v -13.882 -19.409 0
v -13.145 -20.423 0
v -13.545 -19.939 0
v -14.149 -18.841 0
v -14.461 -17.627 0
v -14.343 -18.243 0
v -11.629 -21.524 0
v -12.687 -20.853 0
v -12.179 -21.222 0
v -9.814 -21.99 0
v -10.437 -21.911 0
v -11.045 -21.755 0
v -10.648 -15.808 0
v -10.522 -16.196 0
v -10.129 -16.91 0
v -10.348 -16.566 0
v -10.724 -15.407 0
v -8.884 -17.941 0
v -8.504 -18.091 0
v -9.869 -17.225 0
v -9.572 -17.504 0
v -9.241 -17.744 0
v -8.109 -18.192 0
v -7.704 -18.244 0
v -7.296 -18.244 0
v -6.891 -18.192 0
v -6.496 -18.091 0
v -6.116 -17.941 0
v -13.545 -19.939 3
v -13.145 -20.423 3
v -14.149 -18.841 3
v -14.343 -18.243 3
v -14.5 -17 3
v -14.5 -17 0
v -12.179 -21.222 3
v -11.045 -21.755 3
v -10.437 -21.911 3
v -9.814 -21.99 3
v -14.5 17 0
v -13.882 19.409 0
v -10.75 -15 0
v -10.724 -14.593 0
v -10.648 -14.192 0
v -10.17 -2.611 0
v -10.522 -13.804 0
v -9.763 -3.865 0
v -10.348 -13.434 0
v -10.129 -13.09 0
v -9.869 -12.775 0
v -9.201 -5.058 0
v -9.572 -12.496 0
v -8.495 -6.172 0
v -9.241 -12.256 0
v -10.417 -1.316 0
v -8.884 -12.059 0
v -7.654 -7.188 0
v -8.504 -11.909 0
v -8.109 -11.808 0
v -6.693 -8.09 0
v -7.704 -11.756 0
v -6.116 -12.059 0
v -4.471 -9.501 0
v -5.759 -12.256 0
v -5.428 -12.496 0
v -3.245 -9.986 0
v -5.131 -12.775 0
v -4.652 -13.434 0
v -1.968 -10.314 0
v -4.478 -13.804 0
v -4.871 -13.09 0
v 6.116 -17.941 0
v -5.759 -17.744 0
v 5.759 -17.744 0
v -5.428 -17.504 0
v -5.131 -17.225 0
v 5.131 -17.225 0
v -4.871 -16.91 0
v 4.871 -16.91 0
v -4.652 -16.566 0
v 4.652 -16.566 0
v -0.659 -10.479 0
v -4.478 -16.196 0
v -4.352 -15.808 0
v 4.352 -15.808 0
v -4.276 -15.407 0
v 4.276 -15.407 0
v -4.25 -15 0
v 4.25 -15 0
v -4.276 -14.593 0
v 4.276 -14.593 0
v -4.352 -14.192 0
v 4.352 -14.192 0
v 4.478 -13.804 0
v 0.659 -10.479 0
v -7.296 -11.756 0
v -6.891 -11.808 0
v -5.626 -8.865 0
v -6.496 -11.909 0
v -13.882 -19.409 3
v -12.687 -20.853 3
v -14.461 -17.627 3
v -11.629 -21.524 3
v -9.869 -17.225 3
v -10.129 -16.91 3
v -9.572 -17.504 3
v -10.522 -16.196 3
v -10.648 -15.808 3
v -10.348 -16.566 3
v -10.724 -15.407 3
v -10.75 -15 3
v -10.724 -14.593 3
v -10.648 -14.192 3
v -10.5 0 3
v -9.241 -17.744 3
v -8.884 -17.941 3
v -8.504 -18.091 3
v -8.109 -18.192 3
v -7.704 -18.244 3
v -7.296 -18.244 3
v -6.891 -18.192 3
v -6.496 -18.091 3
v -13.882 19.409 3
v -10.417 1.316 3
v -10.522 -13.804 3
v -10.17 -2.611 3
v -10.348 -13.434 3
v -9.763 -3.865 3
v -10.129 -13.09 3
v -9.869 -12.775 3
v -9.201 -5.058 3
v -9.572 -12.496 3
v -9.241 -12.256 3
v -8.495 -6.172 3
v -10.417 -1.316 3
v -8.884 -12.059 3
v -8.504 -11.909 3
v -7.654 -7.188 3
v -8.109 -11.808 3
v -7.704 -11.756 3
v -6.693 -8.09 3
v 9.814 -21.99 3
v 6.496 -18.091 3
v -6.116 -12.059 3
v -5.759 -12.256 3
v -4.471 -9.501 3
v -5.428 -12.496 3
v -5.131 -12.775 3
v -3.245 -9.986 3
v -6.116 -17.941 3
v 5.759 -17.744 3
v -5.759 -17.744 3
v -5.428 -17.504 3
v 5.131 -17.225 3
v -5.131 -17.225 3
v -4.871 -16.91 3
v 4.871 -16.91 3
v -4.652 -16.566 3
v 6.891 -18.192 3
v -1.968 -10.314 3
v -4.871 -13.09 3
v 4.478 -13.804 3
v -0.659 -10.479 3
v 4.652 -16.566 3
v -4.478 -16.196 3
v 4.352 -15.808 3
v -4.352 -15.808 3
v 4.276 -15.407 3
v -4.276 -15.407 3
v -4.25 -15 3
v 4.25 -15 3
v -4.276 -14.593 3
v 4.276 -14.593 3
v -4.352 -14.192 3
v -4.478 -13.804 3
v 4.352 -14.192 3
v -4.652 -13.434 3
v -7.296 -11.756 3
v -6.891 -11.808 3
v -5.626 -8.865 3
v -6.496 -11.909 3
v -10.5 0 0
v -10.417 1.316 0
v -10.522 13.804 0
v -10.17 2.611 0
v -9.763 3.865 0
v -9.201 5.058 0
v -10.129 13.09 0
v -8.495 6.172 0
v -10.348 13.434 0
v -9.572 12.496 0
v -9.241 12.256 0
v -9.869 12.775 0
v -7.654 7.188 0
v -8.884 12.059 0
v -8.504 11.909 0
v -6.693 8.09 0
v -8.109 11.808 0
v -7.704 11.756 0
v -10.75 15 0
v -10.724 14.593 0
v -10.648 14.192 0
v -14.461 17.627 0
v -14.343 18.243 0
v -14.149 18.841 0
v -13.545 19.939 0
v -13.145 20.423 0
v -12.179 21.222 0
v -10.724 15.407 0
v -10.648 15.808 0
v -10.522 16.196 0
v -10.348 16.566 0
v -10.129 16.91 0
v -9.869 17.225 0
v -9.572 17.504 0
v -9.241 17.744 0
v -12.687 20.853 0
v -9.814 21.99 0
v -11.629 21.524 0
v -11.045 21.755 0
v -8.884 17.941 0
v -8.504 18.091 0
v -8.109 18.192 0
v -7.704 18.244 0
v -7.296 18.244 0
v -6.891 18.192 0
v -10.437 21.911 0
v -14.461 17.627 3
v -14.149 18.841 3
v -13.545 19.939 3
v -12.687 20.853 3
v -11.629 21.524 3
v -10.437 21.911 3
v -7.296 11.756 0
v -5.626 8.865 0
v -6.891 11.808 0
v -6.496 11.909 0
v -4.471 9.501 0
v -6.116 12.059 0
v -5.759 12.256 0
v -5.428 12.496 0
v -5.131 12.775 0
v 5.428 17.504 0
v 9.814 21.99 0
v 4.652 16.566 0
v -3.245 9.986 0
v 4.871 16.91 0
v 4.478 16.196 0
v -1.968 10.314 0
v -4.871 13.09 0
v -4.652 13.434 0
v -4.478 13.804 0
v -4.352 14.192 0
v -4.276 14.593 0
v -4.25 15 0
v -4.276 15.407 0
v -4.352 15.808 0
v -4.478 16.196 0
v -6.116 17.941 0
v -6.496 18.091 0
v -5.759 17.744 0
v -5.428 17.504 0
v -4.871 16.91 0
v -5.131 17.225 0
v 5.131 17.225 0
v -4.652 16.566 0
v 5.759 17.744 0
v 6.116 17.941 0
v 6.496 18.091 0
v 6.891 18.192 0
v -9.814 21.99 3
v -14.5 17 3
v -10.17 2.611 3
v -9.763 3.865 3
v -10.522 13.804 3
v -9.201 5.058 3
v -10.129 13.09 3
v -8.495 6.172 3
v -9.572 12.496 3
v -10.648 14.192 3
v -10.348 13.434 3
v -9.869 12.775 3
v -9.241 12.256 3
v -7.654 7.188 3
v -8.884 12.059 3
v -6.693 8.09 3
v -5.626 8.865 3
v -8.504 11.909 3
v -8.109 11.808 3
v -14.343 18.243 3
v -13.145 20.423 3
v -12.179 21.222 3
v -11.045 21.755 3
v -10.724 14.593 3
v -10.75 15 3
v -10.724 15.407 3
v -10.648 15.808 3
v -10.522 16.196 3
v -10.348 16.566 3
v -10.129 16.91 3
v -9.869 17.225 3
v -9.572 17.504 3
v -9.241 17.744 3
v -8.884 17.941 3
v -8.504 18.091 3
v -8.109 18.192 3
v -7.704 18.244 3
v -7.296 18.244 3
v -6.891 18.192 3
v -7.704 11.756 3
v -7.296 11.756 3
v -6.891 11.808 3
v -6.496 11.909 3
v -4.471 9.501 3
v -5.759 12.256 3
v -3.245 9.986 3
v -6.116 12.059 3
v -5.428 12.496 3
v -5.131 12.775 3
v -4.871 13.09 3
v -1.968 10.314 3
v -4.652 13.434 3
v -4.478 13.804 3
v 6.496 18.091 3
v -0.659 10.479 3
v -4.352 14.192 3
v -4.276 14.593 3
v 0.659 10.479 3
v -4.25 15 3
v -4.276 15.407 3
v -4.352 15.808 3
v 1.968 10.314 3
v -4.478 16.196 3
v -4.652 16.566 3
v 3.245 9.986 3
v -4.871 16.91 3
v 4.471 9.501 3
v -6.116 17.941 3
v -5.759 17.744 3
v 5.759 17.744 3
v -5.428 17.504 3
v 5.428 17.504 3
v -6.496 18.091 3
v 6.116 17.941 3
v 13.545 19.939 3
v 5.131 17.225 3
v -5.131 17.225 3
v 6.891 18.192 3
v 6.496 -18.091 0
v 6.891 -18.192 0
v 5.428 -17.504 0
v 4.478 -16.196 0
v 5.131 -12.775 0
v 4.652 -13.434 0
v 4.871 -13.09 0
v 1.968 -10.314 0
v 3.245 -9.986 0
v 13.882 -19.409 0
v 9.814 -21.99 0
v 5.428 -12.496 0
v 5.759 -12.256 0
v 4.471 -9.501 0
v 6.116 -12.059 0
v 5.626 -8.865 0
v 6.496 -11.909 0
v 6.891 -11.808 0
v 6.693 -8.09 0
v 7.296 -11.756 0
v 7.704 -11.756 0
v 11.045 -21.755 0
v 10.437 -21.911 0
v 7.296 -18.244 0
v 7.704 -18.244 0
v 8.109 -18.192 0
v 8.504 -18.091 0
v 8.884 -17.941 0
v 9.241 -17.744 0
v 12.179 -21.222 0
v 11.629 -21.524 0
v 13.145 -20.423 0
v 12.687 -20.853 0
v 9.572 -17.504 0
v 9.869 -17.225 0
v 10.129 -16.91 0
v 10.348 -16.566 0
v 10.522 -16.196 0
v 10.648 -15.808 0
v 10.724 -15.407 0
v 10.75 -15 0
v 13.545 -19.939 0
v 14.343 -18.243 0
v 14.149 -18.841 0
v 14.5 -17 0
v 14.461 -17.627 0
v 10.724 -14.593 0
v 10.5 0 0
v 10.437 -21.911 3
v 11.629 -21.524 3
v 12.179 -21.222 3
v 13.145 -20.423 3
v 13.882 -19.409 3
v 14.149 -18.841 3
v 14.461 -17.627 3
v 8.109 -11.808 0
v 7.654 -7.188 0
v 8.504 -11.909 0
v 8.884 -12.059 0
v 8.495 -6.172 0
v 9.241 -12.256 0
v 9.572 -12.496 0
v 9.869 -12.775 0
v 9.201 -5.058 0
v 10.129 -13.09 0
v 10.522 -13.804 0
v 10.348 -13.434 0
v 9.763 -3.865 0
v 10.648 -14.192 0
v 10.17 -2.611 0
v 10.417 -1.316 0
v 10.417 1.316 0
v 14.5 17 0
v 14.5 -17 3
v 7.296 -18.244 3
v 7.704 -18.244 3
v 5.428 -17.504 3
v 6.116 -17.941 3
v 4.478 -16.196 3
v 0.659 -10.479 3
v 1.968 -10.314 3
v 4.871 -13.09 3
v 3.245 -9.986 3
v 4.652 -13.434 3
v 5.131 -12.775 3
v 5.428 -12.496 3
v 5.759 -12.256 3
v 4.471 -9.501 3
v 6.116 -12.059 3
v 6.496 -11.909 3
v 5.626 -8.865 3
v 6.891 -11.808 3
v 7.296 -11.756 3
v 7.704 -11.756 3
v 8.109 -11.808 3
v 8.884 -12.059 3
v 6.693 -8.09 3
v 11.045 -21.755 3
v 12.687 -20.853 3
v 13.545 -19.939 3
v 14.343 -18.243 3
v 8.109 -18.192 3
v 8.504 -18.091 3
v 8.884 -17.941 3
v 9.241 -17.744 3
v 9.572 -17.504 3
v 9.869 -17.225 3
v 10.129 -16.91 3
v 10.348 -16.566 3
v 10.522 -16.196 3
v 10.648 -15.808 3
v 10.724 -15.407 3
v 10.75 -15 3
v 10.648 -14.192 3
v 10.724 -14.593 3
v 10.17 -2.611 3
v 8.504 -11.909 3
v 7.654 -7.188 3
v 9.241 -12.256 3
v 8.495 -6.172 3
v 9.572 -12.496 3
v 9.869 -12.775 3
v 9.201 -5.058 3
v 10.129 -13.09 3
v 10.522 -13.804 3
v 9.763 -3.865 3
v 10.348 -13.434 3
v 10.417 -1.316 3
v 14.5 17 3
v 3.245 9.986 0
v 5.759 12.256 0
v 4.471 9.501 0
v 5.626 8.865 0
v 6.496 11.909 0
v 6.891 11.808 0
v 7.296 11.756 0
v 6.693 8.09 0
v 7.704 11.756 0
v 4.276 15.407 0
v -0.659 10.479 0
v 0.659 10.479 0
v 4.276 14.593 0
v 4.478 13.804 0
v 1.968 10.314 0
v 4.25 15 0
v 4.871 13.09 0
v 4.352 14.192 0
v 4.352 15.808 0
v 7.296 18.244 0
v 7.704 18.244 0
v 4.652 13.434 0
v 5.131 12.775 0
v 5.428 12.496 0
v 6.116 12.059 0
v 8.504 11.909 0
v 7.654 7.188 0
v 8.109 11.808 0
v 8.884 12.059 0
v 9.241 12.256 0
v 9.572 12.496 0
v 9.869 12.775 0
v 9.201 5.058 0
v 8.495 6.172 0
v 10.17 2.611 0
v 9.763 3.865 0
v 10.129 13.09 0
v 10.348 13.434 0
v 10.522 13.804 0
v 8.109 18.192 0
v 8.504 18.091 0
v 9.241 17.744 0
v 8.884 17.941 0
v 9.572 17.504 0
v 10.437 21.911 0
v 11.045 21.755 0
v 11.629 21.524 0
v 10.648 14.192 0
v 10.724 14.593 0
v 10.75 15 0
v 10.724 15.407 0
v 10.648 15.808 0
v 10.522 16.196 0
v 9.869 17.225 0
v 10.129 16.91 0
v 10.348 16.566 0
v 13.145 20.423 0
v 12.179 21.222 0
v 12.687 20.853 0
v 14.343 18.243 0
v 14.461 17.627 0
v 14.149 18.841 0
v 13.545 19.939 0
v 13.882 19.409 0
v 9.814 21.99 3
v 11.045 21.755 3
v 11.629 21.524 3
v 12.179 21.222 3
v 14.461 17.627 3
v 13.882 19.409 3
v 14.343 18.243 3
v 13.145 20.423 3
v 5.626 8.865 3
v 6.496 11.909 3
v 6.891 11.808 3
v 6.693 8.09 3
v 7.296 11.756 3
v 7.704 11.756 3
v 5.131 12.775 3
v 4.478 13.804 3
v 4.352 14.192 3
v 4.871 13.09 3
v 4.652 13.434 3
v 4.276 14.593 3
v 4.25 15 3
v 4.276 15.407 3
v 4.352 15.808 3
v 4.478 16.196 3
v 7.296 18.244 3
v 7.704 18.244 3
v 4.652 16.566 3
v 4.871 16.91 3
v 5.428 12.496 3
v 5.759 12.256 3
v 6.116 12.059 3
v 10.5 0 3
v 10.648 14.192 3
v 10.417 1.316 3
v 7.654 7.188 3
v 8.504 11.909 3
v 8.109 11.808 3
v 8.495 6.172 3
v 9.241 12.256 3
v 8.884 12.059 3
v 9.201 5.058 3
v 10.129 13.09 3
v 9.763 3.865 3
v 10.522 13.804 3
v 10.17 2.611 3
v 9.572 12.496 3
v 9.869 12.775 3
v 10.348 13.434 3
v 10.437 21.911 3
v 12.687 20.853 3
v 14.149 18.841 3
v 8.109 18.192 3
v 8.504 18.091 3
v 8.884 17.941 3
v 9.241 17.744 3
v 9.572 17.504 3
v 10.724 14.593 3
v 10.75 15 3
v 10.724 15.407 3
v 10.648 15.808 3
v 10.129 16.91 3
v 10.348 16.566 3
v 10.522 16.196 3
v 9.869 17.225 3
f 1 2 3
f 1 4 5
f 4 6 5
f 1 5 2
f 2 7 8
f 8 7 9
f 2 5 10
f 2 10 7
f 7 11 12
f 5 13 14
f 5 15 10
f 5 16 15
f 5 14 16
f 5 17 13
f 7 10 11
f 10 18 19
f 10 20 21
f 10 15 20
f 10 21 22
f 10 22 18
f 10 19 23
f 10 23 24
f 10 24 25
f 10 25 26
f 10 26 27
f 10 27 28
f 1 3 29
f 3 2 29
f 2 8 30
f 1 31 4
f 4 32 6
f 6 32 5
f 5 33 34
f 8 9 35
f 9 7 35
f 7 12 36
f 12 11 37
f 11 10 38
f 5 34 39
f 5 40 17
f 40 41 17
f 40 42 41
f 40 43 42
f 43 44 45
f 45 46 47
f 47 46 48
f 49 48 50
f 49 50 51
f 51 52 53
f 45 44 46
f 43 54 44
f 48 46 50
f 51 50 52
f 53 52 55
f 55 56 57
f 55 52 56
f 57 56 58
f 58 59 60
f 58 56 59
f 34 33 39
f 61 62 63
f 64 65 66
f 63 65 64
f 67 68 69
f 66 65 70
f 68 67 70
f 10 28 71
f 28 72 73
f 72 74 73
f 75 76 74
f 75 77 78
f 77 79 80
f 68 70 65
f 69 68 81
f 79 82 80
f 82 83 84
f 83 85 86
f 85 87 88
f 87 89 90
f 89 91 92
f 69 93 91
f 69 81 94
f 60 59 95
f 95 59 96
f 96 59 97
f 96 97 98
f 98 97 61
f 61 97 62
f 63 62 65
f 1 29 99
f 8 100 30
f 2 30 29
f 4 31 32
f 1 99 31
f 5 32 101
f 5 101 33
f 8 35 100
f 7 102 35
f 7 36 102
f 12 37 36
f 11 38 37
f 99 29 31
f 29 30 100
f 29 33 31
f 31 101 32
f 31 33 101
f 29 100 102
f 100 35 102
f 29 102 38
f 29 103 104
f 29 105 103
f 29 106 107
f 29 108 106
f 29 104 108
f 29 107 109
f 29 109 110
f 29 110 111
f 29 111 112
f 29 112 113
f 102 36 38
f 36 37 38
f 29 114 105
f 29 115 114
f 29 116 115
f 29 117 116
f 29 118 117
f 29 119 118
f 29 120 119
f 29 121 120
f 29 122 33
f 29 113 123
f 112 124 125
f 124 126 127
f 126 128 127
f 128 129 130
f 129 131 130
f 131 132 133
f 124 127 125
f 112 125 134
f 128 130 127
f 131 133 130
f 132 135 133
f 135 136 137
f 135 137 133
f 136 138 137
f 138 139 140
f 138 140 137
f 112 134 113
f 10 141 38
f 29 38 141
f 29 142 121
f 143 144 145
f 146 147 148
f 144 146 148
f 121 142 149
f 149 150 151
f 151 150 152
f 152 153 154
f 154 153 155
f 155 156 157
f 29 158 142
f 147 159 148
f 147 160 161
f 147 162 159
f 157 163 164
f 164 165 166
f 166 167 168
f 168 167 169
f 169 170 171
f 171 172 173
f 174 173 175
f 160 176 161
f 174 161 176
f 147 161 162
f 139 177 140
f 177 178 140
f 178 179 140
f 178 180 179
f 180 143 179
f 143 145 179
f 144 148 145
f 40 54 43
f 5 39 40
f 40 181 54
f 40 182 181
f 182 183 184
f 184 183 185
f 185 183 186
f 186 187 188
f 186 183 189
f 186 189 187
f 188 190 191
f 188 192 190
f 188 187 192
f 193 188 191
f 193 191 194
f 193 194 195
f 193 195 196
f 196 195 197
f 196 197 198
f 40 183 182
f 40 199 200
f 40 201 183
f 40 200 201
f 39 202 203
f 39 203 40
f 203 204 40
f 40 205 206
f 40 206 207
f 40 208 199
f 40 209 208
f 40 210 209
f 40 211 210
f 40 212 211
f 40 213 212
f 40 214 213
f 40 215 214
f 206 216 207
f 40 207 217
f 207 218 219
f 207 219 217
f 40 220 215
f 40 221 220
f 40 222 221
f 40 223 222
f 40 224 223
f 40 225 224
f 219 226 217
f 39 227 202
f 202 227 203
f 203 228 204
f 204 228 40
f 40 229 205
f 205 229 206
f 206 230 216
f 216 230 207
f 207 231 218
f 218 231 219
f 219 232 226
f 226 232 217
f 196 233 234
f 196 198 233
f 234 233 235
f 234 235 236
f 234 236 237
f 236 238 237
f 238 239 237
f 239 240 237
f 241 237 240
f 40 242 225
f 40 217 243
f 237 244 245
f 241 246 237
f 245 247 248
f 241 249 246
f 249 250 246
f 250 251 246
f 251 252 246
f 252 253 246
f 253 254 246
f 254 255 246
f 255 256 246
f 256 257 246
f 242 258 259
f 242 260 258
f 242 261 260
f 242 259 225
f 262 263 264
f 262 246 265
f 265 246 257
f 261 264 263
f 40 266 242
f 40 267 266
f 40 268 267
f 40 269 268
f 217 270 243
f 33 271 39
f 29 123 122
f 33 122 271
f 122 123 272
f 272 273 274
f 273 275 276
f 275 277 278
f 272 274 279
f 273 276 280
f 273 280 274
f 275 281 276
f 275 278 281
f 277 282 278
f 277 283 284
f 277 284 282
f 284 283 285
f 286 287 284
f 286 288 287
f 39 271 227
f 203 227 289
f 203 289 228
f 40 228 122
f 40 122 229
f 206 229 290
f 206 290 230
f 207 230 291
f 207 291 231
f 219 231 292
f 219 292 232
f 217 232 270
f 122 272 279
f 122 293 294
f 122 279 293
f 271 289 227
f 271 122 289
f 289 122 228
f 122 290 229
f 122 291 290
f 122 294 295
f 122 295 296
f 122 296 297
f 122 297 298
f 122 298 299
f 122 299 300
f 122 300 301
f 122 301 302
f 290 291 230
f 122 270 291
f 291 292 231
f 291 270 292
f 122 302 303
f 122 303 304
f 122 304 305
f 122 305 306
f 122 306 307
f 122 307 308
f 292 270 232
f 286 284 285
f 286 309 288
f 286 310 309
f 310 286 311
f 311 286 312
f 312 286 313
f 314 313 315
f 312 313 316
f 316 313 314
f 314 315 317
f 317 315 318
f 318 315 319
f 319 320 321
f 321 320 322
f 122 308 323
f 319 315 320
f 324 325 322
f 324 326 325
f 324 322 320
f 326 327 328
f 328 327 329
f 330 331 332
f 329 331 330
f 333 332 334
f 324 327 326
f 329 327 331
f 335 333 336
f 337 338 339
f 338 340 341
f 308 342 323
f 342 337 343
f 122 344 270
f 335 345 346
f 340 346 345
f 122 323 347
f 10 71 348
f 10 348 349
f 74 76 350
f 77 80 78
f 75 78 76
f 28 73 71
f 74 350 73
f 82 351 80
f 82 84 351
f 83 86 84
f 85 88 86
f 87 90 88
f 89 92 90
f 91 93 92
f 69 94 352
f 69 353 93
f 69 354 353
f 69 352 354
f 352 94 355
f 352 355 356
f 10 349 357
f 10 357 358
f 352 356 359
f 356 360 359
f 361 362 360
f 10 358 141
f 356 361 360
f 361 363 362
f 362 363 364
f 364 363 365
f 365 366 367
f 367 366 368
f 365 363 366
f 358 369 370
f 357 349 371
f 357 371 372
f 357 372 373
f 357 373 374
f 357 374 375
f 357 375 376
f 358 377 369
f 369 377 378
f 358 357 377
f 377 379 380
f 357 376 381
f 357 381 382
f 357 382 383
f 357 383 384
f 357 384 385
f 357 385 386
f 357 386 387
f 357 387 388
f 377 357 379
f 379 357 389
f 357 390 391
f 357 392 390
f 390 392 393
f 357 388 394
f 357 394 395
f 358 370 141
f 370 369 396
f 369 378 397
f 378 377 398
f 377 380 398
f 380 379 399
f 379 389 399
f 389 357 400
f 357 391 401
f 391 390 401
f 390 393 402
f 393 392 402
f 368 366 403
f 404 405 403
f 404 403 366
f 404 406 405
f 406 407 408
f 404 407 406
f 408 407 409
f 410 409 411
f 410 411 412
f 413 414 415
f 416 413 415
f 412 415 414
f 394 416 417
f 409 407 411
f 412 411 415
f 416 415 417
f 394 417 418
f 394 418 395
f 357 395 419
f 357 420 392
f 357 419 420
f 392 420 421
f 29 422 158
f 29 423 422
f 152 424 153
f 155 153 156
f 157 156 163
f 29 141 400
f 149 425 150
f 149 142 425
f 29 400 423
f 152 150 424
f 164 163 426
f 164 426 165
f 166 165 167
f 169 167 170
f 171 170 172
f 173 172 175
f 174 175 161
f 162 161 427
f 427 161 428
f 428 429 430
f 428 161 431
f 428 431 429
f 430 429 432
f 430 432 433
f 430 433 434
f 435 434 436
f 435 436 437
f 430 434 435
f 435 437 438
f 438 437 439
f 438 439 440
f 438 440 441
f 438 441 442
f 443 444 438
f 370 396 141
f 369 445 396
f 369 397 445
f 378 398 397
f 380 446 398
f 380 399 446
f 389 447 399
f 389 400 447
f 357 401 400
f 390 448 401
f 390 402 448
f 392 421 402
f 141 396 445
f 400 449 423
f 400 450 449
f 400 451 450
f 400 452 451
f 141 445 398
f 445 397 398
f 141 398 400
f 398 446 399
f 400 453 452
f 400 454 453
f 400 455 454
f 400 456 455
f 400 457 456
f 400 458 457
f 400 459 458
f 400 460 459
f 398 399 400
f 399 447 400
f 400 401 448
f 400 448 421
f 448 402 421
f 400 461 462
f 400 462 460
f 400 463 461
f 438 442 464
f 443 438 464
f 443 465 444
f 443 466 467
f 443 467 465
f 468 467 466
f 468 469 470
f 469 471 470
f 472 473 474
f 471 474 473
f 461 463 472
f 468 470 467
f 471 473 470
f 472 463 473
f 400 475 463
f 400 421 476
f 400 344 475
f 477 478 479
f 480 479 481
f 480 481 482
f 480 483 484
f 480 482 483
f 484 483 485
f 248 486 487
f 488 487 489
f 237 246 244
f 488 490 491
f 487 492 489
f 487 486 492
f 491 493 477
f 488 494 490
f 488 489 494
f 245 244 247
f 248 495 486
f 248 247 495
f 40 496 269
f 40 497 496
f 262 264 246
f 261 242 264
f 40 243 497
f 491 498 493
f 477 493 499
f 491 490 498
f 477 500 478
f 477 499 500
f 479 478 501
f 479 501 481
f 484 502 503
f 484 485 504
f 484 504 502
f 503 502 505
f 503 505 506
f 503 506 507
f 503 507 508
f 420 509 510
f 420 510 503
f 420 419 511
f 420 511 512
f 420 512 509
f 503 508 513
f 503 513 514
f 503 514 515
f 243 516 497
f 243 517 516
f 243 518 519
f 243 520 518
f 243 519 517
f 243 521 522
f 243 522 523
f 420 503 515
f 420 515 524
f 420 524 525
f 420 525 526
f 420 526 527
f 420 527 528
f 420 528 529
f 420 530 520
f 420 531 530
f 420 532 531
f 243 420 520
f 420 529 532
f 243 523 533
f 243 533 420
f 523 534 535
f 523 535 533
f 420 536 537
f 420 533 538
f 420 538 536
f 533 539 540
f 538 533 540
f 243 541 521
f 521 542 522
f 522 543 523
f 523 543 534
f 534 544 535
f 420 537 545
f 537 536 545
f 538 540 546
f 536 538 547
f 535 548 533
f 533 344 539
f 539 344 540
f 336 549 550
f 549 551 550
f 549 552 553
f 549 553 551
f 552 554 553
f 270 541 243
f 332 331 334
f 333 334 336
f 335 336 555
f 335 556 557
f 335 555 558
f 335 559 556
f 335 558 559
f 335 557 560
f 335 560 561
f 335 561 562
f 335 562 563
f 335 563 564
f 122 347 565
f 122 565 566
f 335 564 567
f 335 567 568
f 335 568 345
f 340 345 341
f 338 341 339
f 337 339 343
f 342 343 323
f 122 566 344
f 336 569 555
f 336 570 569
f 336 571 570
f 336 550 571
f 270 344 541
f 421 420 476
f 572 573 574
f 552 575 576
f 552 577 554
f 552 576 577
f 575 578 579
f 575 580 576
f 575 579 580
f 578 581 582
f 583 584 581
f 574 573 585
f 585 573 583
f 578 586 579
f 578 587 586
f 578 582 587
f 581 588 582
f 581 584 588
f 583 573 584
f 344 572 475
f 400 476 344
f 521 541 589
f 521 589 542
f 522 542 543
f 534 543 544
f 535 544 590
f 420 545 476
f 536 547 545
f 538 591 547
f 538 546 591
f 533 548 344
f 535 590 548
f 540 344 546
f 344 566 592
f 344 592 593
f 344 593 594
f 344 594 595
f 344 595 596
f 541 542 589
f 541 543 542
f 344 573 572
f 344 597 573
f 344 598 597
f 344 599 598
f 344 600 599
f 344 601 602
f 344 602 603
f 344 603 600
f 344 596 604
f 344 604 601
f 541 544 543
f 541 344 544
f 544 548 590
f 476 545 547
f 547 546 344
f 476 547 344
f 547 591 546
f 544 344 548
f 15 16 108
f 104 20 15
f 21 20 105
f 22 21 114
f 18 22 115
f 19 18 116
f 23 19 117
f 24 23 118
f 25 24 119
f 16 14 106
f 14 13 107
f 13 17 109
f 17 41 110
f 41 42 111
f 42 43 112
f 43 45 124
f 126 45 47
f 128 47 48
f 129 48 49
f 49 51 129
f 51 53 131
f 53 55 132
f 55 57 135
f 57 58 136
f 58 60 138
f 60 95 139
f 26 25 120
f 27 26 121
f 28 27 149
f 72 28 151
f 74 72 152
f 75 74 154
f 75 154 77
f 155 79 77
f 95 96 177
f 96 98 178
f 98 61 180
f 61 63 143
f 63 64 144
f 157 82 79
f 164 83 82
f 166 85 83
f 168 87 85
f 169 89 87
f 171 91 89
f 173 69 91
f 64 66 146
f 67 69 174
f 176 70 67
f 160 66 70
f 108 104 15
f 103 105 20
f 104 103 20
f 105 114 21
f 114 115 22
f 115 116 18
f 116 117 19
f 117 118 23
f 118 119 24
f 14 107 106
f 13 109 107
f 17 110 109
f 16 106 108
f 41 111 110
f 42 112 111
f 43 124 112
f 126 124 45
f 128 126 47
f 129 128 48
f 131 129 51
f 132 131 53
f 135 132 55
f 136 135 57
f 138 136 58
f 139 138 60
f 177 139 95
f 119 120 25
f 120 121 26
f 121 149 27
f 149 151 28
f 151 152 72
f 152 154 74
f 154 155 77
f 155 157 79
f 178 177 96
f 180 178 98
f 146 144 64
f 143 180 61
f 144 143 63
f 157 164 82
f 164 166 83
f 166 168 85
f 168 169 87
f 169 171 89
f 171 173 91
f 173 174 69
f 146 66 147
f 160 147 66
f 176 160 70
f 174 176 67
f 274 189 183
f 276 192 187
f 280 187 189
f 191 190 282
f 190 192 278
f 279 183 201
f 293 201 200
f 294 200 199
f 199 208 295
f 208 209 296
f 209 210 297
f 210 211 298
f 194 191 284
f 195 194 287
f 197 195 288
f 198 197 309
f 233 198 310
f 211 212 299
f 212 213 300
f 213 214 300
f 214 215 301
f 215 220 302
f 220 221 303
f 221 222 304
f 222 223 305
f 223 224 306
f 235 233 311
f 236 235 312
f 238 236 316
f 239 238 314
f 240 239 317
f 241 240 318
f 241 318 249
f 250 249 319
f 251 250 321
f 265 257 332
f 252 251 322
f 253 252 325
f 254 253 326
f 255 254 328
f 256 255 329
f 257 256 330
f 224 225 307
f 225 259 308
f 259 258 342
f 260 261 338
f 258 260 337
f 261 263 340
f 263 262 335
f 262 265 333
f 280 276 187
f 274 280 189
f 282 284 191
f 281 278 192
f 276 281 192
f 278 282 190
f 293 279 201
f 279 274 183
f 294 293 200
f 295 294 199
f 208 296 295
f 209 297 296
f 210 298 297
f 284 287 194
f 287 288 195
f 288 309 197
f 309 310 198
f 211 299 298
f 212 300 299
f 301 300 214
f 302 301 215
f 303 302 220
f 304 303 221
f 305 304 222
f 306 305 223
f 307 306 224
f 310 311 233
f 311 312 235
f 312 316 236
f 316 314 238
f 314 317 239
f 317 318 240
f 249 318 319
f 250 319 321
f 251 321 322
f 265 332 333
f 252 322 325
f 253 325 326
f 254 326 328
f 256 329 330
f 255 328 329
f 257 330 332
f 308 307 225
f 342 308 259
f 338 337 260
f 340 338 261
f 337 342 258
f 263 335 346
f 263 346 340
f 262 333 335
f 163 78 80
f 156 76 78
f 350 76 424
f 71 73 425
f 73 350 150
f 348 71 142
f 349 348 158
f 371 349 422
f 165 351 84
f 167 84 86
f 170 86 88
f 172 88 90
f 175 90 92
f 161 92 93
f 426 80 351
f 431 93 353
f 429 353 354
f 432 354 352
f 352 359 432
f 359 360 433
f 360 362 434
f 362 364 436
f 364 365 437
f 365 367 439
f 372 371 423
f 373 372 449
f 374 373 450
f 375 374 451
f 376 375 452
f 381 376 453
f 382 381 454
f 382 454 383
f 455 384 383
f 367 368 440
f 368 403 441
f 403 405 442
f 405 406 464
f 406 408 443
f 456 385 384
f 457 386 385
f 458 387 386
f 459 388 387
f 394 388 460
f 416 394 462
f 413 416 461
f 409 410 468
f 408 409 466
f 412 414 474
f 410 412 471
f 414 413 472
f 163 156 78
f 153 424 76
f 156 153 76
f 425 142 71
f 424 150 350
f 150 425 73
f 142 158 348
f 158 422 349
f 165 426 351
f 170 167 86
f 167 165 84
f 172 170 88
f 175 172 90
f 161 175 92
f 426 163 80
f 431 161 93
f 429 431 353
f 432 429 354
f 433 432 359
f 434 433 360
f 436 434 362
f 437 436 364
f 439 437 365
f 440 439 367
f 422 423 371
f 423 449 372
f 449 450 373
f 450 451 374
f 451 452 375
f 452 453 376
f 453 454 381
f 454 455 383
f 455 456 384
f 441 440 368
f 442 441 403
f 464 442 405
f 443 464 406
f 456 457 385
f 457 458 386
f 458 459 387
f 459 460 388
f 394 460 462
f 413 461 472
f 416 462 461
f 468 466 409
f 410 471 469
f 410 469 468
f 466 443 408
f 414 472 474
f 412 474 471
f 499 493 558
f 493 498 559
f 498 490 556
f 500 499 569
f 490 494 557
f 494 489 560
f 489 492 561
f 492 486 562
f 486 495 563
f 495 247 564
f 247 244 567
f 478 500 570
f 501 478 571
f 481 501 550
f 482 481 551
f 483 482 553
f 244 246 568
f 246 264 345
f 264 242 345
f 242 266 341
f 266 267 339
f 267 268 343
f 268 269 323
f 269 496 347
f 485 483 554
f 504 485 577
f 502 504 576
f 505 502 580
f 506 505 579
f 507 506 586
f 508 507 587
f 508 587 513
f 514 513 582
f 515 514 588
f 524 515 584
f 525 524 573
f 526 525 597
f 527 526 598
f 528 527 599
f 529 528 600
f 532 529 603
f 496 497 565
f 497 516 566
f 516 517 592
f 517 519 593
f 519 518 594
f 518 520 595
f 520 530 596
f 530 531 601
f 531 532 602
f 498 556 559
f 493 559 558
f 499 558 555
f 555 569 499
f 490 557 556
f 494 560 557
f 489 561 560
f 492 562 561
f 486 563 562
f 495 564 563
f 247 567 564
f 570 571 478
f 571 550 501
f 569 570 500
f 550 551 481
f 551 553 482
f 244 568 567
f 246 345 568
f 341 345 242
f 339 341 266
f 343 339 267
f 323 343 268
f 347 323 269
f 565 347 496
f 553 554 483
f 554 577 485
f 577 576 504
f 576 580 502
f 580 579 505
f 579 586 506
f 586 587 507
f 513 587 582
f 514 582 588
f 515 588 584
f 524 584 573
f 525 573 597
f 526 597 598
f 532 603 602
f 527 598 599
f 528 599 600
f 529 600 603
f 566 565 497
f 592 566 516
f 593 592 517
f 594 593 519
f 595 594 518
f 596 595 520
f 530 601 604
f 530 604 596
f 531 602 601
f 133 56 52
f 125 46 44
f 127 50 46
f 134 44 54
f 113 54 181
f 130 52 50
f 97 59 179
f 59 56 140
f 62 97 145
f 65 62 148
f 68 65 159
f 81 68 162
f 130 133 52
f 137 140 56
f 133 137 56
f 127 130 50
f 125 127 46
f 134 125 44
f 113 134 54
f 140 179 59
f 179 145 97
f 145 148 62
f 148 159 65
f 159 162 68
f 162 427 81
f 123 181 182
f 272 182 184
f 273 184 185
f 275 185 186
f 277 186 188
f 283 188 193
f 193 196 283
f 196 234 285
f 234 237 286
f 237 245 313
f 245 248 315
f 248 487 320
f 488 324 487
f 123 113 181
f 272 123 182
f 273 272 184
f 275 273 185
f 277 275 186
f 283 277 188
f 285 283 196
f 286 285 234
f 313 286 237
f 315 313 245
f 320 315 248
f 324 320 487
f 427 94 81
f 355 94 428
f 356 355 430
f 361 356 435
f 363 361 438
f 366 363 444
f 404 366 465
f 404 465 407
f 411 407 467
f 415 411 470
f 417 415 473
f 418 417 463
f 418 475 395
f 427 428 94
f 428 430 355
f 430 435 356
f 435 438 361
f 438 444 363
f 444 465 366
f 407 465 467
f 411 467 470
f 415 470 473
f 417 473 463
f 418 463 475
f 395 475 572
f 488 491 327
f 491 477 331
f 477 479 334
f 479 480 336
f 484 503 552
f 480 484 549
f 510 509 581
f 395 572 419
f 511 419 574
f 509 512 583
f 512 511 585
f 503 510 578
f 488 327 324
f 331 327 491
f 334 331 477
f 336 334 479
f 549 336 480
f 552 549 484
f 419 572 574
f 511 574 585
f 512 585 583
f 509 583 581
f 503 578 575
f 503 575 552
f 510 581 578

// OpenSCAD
$fn = 50;

difference() {
	union() {
		hull() {
			translate(v = [-9.5, 17.0, 0]) {
				cylinder(h = 3, r = 5);
			}
			translate(v = [9.5, 17.0, 0]) {
				cylinder(h = 3, r = 5);
			}
			translate(v = [-9.5, -17.0, 0]) {
				cylinder(h = 3, r = 5);
			}
			translate(v = [9.5, -17.0, 0]) {
				cylinder(h = 3, r = 5);
			}
		}
	}
	union() {
		translate(v = [-7.5, -15.0, 0]) {
			cylinder(h = 3, r = 3.25);
		}
		translate(v = [-7.5, 15.0, 0]) {
			cylinder(h = 3, r = 3.25);
		}
		translate(v = [7.5, -15.0, 0]) {
			cylinder(h = 3, r = 3.25);
		}
		translate(v = [7.5, 15.0, 0]) {
			cylinder(h = 3, r = 3.25);
		}
		cylinder(h = 3, r = 10.5);
	}
}
